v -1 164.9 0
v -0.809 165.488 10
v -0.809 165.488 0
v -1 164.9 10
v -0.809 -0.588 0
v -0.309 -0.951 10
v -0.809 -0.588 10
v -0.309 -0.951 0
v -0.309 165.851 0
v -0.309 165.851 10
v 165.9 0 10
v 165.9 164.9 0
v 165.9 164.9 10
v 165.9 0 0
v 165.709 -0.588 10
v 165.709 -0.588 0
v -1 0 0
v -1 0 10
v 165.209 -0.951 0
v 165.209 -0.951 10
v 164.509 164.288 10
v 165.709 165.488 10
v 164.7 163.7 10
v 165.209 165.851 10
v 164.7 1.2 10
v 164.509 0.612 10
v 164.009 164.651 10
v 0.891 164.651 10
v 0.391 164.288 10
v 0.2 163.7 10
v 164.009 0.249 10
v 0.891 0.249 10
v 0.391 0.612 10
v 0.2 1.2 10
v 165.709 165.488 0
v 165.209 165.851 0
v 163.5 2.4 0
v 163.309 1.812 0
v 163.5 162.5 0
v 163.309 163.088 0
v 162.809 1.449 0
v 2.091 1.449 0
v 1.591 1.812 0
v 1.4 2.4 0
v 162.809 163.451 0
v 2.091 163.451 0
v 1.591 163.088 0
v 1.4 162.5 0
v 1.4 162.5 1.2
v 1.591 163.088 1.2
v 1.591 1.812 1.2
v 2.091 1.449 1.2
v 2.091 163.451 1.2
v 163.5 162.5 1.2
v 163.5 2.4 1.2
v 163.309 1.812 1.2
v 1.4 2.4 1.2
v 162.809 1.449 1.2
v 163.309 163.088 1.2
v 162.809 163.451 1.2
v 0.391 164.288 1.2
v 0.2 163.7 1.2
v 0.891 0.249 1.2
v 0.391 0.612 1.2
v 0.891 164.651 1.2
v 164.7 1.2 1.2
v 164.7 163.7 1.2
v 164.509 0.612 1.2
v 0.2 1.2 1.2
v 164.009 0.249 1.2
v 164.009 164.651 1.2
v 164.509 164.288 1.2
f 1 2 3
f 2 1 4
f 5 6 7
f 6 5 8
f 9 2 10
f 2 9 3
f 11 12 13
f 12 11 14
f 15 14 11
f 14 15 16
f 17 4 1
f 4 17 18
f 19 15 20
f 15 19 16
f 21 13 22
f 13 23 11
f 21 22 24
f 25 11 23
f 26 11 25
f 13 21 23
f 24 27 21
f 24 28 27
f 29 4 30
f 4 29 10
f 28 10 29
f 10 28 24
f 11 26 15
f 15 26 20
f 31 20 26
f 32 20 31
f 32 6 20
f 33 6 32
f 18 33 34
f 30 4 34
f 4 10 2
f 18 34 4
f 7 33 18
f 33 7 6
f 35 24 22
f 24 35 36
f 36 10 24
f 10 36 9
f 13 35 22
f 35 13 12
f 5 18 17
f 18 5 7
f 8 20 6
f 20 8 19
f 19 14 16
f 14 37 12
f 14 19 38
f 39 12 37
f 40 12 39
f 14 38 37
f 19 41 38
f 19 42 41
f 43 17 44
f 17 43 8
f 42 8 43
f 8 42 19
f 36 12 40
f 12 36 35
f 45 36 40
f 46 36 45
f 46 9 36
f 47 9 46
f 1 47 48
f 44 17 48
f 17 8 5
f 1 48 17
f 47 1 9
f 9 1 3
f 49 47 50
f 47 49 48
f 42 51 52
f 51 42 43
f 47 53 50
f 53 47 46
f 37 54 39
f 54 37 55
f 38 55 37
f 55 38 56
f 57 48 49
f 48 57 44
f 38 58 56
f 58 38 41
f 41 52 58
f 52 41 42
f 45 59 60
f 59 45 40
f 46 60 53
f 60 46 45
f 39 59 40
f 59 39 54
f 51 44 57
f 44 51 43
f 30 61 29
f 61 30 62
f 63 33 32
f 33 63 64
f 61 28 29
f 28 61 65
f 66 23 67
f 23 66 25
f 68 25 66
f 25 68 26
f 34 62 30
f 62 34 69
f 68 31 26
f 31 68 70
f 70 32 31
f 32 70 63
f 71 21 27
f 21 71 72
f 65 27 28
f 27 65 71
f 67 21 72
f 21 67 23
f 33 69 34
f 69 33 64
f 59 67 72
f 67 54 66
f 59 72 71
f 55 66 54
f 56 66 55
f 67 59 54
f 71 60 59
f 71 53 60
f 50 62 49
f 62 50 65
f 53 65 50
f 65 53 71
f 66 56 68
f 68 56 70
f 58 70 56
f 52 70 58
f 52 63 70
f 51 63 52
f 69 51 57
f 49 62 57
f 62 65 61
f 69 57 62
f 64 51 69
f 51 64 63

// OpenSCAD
module shell(wall_width, lip_width, z) {
    matrix_size = 162.5;
    shell_size = matrix_size + (wall_width * 2);
    lip_size = matrix_size - (lip_width * 2);
    
    module picture_hanger() {
        linear_extrude(3) union() {
            circle(d=10);
            translate([10,0,0]) circle(d=6);
            translate([8,0,0]) circle(d=6);
            translate([6,0,0]) circle(d=6);
            translate([4,0,0]) circle(d=6);
        }
    }
    
    lip = 2;
    
    union() difference() {
        linear_extrude(z) 
        minkowski() {
            square(shell_size);
            circle(d=2, $fn=10);    
        }
        
        translate([wall_width + lip_width, wall_width + lip_width, 0])
        linear_extrude(z) 
        minkowski() {
            square([lip_size, lip_size]);
            circle(d=2, $fn=10);    
        }
        
        translate([wall_width, wall_width, wall_width])
        linear_extrude(z) 
        minkowski() {
            square([matrix_size, matrix_size]);
            circle(d=2, $fn=10);    
        }
        
        //translate([20,shell_size/2,0]) 
        //rotate(180)
        //picture_hanger();
    }
}



WIDTH = 1.2;
LIP= 1.2;
Z = 10;

shell(WIDTH, LIP, Z);
